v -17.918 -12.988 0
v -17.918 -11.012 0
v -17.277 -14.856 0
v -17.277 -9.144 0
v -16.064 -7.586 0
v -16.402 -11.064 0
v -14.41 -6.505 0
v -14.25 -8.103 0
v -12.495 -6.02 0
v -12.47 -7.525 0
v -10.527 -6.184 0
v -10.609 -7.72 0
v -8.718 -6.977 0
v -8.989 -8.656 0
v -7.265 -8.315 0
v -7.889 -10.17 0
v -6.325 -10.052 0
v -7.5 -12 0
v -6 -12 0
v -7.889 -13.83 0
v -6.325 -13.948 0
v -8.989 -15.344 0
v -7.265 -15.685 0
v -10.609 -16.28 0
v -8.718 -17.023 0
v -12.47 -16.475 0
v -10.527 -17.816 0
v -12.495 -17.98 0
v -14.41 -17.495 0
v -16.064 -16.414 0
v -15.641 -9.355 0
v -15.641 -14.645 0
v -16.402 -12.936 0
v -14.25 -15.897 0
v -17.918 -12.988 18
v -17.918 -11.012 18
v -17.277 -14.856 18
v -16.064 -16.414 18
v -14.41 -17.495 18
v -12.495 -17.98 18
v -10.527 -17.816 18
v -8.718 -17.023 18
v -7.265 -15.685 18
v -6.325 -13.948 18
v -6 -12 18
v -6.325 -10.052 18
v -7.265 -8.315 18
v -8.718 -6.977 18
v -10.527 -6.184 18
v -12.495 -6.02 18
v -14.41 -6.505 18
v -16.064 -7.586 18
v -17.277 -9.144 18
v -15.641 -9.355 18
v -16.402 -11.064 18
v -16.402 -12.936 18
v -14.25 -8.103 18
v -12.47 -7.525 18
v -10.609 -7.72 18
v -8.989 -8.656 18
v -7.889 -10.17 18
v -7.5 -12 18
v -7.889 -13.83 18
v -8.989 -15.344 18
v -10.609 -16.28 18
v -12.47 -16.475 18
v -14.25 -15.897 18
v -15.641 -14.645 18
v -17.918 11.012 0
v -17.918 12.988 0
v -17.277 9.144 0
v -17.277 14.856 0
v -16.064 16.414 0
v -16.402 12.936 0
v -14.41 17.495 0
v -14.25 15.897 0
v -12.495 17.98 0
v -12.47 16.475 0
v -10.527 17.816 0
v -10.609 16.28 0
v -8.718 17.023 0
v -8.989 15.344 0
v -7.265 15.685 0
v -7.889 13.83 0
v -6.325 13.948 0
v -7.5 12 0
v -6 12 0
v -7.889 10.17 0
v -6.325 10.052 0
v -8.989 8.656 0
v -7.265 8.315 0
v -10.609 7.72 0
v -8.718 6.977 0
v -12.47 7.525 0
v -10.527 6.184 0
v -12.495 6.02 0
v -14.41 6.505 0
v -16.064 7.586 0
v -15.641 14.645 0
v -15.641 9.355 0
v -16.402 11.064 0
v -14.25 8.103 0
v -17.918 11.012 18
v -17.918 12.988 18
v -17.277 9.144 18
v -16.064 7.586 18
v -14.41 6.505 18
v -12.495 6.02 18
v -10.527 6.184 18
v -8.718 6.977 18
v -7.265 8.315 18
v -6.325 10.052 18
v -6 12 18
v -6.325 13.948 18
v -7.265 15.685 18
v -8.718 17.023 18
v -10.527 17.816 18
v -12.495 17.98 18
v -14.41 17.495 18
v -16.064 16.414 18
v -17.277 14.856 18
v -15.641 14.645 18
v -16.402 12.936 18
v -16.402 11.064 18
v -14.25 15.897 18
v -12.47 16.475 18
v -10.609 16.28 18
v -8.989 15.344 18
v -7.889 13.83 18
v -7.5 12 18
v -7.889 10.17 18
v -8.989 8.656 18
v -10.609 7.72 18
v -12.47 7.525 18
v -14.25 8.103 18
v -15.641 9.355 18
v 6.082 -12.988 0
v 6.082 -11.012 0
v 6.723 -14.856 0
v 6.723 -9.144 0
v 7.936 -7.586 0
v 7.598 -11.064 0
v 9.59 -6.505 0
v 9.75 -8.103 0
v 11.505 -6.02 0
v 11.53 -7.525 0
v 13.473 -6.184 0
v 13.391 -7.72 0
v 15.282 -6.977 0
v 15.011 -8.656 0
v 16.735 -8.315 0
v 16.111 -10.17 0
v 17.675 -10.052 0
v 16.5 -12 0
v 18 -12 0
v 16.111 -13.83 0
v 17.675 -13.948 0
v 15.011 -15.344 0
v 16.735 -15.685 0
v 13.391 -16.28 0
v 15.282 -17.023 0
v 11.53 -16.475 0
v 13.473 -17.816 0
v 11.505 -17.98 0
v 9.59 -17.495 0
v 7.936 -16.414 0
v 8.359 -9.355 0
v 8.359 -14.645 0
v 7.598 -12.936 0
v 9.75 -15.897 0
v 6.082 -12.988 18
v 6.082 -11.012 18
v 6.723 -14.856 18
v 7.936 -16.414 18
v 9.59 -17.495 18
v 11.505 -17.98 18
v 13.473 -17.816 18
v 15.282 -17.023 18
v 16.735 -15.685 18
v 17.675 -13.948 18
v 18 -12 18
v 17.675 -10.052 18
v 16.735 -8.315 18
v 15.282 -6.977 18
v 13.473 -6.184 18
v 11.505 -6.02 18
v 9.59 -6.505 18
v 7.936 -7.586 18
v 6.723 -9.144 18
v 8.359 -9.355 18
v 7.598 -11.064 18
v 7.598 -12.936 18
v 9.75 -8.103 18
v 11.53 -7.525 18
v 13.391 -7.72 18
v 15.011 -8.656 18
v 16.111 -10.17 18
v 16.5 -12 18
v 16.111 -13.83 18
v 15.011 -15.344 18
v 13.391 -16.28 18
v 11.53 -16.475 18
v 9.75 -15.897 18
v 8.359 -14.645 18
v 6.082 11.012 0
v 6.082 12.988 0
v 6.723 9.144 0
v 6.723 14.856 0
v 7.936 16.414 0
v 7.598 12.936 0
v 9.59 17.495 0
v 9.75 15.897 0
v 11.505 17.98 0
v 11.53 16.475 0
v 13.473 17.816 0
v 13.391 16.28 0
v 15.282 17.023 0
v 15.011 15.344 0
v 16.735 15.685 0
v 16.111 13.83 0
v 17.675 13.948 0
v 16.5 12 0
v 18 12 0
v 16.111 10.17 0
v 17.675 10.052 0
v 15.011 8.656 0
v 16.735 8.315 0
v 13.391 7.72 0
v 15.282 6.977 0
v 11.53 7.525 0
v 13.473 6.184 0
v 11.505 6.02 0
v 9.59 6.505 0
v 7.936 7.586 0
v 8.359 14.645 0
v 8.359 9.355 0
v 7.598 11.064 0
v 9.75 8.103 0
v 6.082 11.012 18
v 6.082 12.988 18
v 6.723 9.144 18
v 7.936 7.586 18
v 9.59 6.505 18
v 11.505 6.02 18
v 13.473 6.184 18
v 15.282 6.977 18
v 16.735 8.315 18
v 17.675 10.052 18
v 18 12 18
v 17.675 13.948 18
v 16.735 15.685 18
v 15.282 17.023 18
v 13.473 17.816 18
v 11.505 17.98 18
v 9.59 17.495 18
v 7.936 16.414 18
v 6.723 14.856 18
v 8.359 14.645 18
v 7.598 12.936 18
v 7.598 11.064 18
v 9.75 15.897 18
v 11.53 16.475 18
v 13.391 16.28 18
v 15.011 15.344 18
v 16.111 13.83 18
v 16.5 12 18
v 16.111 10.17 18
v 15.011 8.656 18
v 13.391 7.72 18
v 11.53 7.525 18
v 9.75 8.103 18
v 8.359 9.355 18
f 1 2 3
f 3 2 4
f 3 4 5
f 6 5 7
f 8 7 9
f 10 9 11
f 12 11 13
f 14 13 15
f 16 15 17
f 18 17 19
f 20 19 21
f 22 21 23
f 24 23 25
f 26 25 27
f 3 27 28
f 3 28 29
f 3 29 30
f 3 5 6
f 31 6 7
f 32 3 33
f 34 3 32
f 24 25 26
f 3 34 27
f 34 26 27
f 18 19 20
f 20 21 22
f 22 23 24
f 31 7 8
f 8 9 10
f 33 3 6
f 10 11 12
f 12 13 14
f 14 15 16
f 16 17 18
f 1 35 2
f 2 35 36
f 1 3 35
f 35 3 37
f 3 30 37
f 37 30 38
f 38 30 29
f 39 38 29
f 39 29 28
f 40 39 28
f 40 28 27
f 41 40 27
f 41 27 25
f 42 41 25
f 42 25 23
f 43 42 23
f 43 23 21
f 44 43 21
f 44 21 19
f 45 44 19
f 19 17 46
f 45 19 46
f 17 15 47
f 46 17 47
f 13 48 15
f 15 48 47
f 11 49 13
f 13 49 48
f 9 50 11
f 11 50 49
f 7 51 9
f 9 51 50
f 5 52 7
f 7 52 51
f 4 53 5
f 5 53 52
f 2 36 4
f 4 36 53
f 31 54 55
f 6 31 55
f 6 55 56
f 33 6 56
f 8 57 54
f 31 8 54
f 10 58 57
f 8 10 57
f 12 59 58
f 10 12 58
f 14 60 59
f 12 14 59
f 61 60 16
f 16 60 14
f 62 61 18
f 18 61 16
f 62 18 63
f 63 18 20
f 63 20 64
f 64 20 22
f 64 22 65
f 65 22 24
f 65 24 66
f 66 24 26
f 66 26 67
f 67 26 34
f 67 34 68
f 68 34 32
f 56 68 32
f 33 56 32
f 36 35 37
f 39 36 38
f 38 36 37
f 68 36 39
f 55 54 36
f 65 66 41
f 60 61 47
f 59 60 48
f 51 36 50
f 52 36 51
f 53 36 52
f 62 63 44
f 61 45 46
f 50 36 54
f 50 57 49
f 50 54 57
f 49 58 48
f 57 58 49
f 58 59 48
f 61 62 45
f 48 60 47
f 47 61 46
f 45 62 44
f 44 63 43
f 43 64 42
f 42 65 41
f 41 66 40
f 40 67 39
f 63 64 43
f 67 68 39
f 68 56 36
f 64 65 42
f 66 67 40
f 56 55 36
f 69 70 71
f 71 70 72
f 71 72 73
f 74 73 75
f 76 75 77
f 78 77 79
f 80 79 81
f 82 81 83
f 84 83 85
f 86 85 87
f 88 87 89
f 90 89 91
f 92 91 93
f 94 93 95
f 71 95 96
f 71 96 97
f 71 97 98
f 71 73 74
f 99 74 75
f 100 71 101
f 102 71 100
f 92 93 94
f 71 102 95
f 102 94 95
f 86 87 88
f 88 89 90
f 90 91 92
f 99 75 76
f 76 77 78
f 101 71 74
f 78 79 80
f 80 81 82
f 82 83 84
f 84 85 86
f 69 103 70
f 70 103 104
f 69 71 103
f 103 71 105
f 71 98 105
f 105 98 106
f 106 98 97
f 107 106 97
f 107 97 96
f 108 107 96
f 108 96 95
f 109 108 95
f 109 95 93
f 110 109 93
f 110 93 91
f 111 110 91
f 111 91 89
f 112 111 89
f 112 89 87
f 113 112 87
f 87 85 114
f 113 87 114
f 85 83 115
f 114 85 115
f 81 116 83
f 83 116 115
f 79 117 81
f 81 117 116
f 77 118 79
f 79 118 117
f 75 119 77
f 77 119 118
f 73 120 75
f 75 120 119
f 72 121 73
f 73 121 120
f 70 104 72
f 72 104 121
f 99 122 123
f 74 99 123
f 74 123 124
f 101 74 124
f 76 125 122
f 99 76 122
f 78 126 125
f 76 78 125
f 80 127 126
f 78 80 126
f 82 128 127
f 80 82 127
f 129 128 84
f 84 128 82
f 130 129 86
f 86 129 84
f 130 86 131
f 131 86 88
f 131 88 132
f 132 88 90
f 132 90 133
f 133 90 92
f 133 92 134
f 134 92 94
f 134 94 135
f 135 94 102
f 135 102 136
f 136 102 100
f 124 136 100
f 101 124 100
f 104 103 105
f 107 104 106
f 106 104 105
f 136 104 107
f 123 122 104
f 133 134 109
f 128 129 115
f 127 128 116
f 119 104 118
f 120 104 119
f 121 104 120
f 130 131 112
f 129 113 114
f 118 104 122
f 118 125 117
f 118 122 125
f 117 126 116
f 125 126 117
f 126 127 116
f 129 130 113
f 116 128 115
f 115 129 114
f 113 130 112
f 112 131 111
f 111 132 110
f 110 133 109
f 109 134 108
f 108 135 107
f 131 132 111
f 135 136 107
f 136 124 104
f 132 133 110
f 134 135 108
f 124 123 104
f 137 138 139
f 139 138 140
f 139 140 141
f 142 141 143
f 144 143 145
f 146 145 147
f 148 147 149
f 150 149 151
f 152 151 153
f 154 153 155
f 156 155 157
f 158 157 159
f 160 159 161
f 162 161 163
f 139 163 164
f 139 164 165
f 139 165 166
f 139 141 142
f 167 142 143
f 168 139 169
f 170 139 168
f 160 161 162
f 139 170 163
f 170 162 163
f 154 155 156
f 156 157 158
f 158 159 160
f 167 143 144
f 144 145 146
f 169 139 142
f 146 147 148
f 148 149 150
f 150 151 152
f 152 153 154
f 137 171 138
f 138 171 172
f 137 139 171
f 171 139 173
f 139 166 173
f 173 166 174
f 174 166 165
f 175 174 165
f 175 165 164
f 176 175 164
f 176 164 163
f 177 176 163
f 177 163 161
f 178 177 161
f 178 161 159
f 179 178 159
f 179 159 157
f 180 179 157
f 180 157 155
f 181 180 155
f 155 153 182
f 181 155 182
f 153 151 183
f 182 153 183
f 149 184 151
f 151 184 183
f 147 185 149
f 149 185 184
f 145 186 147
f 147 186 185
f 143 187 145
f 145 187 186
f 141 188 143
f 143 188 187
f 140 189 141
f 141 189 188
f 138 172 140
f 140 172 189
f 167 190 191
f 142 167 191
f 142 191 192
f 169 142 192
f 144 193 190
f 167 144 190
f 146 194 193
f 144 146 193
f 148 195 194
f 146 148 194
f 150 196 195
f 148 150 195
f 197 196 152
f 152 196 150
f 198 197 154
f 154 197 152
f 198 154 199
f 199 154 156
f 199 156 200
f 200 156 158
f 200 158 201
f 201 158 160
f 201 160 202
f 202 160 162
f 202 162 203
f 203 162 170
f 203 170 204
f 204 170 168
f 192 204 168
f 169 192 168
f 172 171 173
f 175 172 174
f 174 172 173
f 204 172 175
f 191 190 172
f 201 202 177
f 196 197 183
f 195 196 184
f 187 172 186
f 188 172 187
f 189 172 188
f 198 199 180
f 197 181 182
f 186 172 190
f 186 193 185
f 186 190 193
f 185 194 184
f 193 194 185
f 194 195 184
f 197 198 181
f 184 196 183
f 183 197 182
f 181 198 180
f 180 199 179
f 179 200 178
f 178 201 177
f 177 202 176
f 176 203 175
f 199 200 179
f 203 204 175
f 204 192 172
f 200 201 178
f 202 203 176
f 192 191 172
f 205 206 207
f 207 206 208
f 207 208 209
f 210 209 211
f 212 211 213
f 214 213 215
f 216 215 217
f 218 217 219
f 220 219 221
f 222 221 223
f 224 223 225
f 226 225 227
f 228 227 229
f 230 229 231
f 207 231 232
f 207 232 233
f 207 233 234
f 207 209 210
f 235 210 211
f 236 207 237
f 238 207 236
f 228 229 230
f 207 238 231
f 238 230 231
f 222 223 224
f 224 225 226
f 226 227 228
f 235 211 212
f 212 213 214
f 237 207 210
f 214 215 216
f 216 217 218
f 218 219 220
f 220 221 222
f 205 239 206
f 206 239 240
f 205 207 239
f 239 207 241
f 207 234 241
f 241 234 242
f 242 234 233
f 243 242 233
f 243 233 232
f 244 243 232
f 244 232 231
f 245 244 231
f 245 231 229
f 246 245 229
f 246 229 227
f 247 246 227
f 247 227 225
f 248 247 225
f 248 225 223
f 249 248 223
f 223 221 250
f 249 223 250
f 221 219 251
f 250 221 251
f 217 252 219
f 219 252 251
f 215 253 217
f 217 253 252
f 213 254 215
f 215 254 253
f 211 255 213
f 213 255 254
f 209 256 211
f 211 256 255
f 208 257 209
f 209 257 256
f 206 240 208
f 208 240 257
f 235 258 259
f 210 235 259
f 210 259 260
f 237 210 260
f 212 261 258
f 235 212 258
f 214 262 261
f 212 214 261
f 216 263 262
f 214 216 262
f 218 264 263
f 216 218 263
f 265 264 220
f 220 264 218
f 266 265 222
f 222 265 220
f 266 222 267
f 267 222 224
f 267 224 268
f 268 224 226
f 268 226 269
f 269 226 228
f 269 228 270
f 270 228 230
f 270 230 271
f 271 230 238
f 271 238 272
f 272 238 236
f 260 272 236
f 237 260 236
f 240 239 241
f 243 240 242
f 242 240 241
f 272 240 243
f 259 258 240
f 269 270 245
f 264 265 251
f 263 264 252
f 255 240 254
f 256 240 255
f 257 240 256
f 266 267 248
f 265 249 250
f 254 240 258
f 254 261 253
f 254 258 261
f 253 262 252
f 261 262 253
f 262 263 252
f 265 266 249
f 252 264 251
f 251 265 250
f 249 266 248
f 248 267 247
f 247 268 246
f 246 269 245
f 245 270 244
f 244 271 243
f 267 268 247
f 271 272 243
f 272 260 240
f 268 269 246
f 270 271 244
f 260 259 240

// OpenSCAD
// od  = outside diameter
// id  = inside diameter
// len = length of spacer
// d   = delta
module spacer(od, id, len, d)
{
    difference()
    {
        cylinder(r=od/2, h=len);
        translate([0,0,-d]) cylinder(r=id/2, h=len+2*d);
    }
}

// Actual objects here

od = 12;
halfpitch = od;
for (xo = [-halfpitch, halfpitch])
{
	for ( yo = [-halfpitch, halfpitch])
	{
		translate([xo, yo, 0])
		spacer(od, 9, 18, 1);
	}
}
